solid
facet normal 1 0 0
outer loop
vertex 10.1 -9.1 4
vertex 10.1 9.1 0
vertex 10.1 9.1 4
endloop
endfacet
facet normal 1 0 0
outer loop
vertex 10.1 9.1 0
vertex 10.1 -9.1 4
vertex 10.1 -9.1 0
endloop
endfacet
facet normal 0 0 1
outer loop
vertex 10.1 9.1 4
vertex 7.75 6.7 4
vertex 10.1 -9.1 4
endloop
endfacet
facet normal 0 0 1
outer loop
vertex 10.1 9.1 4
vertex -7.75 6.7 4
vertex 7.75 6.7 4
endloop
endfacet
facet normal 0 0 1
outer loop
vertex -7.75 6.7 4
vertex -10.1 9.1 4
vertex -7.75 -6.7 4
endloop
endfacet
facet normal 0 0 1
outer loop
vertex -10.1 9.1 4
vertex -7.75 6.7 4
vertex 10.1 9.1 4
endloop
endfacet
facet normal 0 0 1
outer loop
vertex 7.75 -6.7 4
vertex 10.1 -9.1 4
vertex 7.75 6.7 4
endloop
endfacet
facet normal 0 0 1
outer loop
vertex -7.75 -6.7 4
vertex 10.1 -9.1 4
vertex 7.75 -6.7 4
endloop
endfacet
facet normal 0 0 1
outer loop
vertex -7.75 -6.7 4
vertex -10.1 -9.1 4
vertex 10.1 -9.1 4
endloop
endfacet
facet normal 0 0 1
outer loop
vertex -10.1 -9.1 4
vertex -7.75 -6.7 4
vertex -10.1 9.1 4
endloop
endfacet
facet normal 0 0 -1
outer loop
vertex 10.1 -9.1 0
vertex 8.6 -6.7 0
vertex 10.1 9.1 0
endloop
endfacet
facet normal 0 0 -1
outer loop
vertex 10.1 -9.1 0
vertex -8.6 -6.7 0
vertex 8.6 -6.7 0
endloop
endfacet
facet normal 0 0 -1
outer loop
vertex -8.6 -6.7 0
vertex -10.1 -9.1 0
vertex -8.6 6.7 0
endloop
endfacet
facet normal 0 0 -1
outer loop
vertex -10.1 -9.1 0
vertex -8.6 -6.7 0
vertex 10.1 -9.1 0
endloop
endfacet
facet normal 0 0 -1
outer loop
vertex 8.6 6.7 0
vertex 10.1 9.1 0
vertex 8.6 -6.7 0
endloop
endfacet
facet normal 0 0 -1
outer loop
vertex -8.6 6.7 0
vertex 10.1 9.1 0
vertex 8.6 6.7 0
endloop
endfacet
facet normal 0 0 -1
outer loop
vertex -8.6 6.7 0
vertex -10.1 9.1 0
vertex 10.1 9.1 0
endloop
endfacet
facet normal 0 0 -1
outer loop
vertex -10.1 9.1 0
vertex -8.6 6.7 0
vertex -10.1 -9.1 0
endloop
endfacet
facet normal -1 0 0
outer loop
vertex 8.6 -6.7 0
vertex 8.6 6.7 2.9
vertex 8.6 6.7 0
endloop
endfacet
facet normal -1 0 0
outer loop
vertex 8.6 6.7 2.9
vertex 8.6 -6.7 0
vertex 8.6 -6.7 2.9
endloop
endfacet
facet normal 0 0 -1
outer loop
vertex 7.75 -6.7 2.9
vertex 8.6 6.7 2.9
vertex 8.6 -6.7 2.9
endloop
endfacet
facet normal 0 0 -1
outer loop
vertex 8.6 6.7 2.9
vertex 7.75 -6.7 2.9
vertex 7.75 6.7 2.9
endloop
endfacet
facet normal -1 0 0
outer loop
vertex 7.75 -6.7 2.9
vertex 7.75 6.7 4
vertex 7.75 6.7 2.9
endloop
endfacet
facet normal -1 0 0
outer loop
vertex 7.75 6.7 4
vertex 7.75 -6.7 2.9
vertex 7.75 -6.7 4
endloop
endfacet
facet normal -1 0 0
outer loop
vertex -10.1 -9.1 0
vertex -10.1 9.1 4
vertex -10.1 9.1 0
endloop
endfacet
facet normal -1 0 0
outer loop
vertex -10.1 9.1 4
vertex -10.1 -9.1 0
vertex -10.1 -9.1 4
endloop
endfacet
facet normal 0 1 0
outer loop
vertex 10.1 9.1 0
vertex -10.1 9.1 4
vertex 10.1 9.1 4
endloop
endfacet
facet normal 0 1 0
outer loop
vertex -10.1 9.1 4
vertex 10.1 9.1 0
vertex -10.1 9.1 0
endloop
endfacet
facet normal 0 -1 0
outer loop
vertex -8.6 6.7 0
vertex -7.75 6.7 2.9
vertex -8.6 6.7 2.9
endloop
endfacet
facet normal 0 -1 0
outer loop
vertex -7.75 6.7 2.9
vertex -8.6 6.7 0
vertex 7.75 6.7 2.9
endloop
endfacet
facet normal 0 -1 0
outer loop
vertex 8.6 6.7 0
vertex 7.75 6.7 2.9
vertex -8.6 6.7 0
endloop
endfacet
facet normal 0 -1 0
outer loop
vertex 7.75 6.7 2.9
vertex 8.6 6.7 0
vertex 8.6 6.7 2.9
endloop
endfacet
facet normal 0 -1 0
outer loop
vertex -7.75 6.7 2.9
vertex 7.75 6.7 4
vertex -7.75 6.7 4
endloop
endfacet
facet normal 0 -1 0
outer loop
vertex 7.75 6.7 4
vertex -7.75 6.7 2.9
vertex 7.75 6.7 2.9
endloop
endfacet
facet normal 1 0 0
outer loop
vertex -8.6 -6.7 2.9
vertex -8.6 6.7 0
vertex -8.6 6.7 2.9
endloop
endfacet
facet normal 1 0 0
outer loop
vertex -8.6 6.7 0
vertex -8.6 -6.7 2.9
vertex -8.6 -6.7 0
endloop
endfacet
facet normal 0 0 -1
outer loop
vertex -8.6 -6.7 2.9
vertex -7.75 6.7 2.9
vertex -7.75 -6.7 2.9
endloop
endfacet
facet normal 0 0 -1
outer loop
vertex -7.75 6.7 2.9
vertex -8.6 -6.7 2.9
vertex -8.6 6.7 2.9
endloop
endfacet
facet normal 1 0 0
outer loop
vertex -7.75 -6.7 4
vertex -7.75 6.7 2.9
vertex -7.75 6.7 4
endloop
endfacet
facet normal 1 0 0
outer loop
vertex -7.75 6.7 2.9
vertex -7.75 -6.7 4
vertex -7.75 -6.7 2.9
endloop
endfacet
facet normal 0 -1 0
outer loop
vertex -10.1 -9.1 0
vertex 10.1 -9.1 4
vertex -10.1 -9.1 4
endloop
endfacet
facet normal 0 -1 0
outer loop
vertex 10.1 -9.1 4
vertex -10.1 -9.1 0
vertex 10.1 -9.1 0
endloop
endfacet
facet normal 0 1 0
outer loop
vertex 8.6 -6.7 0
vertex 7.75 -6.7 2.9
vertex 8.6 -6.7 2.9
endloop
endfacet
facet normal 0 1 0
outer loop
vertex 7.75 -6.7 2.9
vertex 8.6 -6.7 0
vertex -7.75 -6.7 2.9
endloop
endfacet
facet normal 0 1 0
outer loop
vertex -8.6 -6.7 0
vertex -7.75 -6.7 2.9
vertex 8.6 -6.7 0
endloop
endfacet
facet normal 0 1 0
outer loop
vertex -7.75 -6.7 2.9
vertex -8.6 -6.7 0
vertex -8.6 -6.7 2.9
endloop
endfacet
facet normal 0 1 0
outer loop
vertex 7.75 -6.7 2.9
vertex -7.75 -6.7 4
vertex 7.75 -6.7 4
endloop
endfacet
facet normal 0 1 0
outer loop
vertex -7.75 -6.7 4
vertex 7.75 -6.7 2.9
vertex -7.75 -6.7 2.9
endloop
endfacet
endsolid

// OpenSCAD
union () {
  union () {
    translate ([0, 7.9, 2]) {
      cube ([20.2, 2.4, 4], center=true);
    }
    union () {
      translate ([9.35, 0, 2]) {
        cube ([1.5, 17.8, 4], center=true);
      }
      translate ([8.5, 0, 3.45]) {
        cube ([1.5, 17.8, 1.1], center=true);
      }
    }
  }
  mirror ([0, 1, 0]) {
    mirror ([1, 0, 0]) {
      union () {
        translate ([0, 7.9, 2]) {
          cube ([20.2, 2.4, 4], center=true);
        }
        union () {
          translate ([9.35, 0, 2]) {
            cube ([1.5, 17.8, 4], center=true);
          }
          translate ([8.5, 0, 3.45]) {
            cube ([1.5, 17.8, 1.1], center=true);
          }
        }
      }
    }
  }
}
